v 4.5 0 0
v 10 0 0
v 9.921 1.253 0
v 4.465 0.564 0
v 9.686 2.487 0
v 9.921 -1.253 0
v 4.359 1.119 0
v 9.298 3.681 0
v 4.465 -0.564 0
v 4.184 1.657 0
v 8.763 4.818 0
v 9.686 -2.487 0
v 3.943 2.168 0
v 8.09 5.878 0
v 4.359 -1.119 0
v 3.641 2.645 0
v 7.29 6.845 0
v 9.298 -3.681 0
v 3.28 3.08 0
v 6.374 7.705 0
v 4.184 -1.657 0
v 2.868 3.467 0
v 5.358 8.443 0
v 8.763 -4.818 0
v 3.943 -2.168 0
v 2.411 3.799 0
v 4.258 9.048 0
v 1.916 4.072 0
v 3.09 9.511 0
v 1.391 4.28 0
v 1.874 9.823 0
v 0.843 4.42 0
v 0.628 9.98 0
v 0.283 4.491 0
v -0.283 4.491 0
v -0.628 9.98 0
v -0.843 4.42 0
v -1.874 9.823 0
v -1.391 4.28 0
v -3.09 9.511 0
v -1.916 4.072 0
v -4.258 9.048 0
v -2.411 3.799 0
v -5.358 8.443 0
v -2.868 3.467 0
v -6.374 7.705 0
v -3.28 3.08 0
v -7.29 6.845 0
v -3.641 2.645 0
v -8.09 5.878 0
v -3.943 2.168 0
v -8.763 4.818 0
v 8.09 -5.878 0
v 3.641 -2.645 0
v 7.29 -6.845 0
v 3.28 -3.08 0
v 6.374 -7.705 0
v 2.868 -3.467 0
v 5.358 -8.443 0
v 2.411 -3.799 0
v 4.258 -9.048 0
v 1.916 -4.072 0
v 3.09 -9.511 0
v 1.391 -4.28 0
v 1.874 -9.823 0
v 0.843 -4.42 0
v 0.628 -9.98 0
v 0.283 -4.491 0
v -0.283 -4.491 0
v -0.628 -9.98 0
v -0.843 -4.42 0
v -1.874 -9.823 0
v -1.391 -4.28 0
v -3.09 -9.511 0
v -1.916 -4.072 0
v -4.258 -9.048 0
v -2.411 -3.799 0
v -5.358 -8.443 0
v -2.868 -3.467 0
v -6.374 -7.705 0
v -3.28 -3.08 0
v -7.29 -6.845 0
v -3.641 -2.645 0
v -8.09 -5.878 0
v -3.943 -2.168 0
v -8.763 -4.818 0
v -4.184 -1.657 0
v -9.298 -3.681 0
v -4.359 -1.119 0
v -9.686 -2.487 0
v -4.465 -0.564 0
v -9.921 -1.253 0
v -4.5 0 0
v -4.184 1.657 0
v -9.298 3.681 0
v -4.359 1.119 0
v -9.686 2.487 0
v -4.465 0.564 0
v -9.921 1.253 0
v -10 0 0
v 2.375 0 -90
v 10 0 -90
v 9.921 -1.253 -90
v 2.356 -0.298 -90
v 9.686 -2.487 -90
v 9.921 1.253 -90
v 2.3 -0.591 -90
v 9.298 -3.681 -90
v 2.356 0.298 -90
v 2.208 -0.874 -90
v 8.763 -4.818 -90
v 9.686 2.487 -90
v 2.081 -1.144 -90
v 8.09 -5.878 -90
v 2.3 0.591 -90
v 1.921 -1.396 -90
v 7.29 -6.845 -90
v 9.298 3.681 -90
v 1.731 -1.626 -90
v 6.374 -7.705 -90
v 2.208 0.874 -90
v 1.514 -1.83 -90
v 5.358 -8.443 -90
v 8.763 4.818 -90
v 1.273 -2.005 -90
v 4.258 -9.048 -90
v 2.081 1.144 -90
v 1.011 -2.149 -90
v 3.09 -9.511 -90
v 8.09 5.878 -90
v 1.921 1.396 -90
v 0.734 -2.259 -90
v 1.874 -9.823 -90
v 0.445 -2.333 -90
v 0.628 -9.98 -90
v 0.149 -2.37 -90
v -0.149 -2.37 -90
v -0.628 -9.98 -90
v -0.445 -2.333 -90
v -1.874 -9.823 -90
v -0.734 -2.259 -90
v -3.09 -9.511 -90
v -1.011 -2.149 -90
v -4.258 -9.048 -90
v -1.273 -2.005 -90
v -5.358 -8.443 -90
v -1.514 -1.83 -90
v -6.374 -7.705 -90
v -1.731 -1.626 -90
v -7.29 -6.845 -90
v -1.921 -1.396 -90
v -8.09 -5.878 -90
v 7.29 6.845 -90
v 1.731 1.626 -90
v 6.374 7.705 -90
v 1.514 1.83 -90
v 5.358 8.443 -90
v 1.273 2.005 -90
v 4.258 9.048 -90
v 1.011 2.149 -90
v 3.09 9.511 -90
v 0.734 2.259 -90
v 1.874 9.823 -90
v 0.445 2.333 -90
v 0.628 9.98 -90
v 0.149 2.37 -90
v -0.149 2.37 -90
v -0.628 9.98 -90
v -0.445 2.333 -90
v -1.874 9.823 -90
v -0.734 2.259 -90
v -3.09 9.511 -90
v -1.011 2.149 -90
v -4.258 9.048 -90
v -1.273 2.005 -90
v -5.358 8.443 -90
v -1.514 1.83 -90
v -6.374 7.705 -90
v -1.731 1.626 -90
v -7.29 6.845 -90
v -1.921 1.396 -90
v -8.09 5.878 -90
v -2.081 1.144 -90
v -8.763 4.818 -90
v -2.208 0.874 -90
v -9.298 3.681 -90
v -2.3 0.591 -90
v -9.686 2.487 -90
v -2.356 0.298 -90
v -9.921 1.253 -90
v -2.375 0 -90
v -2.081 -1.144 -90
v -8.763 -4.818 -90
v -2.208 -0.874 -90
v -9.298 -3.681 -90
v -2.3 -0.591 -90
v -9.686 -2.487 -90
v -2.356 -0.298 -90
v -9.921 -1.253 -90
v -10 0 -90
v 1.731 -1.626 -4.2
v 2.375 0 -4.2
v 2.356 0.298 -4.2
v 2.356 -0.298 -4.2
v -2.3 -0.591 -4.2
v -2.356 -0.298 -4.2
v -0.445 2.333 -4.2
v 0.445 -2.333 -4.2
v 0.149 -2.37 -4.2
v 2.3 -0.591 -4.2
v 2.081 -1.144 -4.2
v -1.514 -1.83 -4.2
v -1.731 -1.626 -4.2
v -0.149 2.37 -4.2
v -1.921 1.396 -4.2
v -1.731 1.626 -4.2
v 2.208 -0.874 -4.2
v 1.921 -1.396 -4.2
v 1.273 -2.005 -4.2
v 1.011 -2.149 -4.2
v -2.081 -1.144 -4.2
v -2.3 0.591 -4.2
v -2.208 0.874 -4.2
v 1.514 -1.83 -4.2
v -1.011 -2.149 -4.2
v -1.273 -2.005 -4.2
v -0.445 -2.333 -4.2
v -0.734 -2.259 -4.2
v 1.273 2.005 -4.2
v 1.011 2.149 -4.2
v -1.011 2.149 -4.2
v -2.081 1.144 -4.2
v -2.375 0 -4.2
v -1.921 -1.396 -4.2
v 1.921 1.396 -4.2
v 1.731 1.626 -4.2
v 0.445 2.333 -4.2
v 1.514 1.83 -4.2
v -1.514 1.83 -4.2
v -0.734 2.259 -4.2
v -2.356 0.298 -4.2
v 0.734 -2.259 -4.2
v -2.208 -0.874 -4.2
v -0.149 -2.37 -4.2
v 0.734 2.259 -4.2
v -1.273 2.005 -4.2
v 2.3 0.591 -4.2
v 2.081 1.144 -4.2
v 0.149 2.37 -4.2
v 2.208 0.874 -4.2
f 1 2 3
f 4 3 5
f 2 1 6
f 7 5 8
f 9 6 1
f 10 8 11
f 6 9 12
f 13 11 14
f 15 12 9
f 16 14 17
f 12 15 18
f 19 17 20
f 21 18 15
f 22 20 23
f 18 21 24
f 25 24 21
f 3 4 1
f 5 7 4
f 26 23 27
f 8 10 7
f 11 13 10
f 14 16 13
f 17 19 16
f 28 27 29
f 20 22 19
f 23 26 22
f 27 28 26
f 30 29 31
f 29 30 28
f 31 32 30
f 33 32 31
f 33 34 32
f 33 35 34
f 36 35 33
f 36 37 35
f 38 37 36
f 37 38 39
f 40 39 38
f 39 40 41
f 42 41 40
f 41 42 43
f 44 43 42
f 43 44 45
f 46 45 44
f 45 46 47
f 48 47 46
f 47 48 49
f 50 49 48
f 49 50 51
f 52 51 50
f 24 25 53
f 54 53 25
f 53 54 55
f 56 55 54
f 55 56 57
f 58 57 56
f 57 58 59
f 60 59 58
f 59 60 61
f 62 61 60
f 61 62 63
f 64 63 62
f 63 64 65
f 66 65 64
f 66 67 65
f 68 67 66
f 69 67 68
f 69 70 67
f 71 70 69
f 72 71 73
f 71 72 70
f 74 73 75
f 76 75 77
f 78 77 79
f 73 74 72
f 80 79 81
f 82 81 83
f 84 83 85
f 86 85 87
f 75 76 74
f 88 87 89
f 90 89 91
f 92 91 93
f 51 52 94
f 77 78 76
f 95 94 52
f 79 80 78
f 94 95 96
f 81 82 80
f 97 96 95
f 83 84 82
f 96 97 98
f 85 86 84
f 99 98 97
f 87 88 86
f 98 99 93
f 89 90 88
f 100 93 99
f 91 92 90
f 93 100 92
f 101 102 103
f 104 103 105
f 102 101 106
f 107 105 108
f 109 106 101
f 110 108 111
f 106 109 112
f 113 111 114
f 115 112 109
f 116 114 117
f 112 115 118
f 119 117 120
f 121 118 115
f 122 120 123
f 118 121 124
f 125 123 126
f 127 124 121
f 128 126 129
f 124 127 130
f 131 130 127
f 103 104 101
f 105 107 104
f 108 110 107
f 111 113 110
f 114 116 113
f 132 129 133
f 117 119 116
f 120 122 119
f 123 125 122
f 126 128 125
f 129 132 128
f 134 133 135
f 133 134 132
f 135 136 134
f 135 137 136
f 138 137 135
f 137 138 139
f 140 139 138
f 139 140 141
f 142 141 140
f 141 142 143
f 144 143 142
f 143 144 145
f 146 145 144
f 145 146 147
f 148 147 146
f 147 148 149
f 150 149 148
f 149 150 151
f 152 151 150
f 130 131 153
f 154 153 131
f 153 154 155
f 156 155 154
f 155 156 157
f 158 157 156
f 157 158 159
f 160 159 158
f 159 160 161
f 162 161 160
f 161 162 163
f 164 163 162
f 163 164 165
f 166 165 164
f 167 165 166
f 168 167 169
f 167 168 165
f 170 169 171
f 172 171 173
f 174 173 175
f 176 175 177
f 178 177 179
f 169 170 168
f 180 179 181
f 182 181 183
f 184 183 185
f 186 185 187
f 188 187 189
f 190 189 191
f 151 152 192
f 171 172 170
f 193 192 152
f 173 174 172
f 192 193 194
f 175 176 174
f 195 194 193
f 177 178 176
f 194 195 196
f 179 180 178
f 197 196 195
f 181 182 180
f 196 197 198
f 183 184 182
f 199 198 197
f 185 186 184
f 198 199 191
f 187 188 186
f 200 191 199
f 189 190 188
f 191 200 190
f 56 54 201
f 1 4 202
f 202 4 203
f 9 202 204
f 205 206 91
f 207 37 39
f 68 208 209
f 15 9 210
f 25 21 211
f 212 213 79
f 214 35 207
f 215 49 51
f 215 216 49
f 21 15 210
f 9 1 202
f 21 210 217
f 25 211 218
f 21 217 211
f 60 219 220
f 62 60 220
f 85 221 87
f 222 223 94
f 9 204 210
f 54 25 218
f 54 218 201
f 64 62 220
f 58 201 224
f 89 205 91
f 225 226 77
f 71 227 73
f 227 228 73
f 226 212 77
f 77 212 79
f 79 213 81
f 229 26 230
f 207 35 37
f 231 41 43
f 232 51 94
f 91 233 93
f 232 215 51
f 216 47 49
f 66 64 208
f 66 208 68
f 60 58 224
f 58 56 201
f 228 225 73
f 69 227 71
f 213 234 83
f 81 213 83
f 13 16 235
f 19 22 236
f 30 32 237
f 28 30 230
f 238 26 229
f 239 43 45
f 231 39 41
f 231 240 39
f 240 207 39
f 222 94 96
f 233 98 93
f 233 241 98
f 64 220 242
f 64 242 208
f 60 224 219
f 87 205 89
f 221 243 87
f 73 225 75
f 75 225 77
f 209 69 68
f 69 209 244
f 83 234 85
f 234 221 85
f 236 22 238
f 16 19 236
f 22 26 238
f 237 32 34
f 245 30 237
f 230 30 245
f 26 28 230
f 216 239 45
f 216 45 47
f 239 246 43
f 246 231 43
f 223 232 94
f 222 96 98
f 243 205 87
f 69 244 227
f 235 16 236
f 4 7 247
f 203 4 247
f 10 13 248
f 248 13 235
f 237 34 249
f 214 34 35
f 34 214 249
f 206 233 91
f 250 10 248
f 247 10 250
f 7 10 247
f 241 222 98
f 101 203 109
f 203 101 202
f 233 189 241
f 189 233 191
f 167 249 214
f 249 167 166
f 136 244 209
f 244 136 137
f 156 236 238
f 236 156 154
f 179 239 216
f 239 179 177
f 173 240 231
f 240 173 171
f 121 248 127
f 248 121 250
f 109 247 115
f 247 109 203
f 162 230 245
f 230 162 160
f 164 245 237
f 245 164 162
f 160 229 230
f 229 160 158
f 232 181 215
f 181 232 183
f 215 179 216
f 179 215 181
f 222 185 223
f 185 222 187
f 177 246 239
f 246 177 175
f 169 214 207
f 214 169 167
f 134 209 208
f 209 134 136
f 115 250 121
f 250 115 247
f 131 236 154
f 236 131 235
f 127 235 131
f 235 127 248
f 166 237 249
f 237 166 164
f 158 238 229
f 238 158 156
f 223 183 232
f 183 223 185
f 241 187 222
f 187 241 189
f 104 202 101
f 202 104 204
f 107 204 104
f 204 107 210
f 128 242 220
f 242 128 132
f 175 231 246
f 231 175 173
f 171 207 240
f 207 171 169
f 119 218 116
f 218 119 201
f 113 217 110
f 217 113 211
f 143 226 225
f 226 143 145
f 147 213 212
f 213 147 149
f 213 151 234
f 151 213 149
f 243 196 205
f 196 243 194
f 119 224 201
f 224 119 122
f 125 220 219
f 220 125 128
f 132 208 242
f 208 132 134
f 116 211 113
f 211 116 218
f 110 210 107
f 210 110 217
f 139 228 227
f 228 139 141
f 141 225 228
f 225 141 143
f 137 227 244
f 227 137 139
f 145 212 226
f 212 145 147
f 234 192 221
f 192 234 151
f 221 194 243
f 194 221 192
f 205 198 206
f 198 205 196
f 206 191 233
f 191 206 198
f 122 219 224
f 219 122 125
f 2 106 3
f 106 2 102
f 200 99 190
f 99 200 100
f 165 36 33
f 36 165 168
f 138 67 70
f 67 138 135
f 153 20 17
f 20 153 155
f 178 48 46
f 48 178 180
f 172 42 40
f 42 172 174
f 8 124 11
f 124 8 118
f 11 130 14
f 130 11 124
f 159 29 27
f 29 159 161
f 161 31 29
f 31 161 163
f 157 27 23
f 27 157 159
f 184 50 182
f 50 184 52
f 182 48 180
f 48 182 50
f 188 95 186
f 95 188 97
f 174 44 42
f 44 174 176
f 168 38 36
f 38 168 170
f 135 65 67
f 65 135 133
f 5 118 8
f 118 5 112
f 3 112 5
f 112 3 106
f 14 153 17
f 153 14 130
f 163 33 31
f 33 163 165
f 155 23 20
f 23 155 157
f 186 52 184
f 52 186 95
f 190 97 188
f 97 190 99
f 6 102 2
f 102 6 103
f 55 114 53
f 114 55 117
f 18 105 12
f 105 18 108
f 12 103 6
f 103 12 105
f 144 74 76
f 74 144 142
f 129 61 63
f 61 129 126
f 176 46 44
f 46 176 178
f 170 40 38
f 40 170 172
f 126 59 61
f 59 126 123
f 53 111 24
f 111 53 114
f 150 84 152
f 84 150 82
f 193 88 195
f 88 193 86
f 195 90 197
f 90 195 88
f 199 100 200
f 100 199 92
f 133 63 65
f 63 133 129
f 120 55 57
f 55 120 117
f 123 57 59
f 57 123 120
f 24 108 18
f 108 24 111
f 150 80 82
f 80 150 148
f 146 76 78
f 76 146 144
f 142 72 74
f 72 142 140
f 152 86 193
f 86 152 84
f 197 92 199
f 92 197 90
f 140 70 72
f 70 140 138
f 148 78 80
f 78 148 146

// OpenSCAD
$fn = 50;


difference() {
	union() {
		translate(v = [0, 0, -90.0000000000]) {
			cylinder(h = 90, r = 10.0000000000);
		}
		cylinder(h = 0, r = 13.0000000000);
	}
	union() {
		translate(v = [0, 0, 0]) {
			rotate(a = [0, 0, 0]) {
				difference() {
					union() {
						#translate(v = [0, 0, -90.0000000000]) {
							cylinder(h = 90, r = 2.2500000000);
						}
						#translate(v = [0, 0, -4.2000000000]) {
							cylinder(h = 4.2000000000, r1 = 2.3750000000, r2 = 4.5000000000);
						}
						#translate(v = [0, 0, -90.0000000000]) {
							cylinder(h = 90, r = 2.3750000000);
						}
						#translate(v = [0, 0, -90.0000000000]) {
							cylinder(h = 90, r = 2.2500000000);
						}
					}
					union();
				}
			}
		}
	}
}
